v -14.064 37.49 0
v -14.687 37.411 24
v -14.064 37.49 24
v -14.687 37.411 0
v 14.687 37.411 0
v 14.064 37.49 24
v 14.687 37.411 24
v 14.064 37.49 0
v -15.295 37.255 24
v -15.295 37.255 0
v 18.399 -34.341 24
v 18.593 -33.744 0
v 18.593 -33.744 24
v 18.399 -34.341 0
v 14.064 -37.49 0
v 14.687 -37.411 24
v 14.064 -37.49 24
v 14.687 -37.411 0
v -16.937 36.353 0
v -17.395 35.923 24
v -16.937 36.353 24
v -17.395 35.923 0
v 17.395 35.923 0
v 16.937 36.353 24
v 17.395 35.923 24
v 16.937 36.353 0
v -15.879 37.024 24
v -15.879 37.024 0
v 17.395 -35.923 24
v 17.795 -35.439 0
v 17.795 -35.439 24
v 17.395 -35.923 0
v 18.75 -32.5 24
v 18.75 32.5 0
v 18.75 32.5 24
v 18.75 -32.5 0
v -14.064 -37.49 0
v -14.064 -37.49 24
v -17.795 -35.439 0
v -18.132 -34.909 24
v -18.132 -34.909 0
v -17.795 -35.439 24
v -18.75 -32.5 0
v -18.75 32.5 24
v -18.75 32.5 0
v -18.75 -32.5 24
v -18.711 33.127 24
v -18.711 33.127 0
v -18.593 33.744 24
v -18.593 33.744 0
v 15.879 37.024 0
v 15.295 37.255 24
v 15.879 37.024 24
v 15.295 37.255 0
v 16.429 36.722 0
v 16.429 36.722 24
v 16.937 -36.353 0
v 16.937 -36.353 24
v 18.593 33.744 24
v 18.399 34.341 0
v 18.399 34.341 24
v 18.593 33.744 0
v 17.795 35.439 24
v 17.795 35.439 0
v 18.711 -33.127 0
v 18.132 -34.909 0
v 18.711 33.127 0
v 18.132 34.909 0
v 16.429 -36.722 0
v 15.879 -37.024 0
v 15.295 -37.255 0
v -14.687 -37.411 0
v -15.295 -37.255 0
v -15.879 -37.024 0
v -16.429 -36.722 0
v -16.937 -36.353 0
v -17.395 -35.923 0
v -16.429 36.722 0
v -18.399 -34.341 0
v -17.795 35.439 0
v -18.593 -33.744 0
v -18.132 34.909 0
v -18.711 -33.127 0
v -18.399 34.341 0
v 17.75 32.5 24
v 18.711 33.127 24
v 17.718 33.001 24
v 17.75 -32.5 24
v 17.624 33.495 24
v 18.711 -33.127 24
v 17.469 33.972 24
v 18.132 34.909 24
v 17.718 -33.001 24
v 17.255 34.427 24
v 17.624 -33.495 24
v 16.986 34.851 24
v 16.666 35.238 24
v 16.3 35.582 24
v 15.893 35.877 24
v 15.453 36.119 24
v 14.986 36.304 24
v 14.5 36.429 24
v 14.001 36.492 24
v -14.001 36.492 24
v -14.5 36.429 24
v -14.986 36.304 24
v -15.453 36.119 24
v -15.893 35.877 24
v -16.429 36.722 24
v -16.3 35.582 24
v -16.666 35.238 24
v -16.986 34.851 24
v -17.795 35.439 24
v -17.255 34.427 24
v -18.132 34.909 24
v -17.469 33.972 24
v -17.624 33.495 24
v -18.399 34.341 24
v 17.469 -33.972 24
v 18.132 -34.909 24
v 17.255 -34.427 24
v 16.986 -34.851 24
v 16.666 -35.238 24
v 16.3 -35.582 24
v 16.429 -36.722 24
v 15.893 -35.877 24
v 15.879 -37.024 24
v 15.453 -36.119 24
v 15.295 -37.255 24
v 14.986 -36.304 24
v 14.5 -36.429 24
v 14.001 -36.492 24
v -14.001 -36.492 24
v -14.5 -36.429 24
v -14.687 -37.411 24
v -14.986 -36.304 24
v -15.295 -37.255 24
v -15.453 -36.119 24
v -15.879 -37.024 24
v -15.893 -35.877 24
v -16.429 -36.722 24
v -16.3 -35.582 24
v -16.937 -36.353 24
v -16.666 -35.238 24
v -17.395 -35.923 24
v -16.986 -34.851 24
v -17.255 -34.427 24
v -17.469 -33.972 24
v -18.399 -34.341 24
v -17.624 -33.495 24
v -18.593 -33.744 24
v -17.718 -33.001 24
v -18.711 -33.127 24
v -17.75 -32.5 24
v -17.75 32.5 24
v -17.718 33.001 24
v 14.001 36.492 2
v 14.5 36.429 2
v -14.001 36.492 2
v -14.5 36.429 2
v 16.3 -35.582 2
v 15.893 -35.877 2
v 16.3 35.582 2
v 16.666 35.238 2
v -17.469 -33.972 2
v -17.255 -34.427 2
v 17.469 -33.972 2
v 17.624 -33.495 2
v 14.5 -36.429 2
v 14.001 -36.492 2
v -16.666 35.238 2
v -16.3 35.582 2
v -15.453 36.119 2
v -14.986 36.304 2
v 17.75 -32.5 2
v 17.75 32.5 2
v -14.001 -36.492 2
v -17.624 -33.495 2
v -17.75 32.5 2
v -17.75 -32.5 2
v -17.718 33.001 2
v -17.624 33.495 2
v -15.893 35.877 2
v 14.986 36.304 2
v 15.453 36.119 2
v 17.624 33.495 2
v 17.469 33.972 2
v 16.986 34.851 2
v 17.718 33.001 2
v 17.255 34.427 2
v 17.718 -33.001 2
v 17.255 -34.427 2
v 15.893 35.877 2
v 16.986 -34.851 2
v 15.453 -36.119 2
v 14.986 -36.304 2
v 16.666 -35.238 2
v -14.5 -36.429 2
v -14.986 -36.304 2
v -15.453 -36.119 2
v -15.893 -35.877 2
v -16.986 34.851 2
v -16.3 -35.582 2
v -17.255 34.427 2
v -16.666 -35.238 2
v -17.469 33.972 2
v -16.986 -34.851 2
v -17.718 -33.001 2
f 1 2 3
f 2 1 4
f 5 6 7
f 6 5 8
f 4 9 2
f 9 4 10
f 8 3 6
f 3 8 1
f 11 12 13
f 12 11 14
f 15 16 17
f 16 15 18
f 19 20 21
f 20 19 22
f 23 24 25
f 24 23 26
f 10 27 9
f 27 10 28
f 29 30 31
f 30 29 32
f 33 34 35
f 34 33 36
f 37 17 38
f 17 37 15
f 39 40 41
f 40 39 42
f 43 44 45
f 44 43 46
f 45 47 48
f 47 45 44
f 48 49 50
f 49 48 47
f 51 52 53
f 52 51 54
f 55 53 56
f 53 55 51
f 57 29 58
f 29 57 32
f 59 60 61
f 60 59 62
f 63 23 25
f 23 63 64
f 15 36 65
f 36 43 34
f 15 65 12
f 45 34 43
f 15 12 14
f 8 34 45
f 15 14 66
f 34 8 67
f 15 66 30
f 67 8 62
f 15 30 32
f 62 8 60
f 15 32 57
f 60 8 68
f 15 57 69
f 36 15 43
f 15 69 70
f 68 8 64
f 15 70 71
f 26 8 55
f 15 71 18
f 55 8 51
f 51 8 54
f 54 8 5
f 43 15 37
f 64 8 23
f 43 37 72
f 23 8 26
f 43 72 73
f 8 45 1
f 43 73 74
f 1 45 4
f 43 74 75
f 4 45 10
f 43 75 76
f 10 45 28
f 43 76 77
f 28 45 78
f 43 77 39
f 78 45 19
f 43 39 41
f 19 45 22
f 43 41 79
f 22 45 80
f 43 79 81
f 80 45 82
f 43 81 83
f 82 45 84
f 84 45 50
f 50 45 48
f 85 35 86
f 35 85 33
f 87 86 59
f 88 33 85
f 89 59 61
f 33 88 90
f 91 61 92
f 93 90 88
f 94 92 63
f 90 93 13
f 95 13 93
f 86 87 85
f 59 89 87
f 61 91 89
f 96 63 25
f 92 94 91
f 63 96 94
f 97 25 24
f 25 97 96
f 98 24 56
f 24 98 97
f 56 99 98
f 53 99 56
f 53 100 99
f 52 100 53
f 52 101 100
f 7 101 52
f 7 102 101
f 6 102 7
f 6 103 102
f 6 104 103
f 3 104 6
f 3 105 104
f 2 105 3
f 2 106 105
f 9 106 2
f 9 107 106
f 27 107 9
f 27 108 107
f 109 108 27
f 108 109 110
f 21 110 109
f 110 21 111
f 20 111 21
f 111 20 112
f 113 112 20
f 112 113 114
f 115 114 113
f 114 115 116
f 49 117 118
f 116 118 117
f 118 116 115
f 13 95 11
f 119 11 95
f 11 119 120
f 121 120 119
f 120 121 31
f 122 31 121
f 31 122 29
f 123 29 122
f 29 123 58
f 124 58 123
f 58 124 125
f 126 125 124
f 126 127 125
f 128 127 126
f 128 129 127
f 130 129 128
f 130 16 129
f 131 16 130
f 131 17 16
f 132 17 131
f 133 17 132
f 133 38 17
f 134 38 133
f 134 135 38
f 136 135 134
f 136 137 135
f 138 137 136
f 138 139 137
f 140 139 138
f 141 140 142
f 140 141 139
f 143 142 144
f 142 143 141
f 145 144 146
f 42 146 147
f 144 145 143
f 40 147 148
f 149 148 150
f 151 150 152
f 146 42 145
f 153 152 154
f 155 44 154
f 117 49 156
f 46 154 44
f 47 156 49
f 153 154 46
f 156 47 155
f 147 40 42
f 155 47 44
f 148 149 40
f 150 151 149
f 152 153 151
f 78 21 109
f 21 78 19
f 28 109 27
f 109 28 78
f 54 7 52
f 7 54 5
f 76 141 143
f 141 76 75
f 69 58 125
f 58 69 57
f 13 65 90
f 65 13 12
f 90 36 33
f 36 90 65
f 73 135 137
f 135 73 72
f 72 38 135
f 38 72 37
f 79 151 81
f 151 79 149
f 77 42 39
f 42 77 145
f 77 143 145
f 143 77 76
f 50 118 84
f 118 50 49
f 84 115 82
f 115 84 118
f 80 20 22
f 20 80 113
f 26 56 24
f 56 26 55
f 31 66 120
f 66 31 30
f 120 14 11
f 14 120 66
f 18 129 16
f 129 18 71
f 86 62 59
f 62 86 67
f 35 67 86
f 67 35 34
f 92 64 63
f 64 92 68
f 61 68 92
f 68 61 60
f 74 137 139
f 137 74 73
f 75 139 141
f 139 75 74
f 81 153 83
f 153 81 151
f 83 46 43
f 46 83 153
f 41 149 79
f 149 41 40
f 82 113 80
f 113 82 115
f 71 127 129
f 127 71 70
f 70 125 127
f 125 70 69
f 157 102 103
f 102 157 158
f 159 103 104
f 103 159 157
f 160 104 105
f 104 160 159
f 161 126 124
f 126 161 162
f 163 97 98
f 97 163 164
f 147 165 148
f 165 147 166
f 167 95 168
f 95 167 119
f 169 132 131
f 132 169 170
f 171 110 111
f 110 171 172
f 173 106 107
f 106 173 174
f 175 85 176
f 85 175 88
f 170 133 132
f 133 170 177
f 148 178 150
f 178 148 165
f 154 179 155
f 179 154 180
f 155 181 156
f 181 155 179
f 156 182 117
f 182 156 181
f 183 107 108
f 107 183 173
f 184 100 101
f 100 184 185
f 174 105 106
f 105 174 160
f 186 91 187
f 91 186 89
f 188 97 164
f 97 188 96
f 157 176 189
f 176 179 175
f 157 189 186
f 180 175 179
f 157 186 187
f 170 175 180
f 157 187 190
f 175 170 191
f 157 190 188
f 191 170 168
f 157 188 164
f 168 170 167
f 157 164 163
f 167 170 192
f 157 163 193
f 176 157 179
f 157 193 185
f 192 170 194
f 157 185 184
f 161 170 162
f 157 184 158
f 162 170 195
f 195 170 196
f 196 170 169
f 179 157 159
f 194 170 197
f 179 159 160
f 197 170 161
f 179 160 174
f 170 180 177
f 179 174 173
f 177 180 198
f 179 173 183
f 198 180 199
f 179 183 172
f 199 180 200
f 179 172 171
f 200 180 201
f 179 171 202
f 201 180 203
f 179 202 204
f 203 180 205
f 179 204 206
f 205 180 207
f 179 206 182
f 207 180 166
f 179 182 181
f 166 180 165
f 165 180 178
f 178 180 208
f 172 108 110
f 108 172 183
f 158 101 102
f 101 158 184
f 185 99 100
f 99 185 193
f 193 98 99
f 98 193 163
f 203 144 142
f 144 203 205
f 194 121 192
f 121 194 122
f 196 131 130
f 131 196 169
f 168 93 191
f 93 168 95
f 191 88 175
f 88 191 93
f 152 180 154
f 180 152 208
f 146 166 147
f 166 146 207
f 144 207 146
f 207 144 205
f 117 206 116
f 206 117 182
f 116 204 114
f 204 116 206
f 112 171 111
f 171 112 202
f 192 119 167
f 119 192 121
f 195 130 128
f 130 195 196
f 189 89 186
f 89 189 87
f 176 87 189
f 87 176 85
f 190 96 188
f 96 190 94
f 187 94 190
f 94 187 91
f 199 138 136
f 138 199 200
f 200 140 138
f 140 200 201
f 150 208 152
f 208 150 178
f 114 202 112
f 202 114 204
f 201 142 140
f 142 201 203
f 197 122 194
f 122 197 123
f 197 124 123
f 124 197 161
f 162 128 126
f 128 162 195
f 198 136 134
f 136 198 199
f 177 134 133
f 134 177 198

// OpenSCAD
$fn = 50;


difference() {
	union() {
		hull() {
			translate(v = [-13.7500000000, 32.5000000000, 0]) {
				cylinder(h = 24, r = 5);
			}
			translate(v = [13.7500000000, 32.5000000000, 0]) {
				cylinder(h = 24, r = 5);
			}
			translate(v = [-13.7500000000, -32.5000000000, 0]) {
				cylinder(h = 24, r = 5);
			}
			translate(v = [13.7500000000, -32.5000000000, 0]) {
				cylinder(h = 24, r = 5);
			}
		}
	}
	union() {
		translate(v = [0, 0, 2]) {
			hull() {
				translate(v = [-13.7500000000, 32.5000000000, 0]) {
					cylinder(h = 22, r = 4);
				}
				translate(v = [13.7500000000, 32.5000000000, 0]) {
					cylinder(h = 22, r = 4);
				}
				translate(v = [-13.7500000000, -32.5000000000, 0]) {
					cylinder(h = 22, r = 4);
				}
				translate(v = [13.7500000000, -32.5000000000, 0]) {
					cylinder(h = 22, r = 4);
				}
			}
		}
	}
}
